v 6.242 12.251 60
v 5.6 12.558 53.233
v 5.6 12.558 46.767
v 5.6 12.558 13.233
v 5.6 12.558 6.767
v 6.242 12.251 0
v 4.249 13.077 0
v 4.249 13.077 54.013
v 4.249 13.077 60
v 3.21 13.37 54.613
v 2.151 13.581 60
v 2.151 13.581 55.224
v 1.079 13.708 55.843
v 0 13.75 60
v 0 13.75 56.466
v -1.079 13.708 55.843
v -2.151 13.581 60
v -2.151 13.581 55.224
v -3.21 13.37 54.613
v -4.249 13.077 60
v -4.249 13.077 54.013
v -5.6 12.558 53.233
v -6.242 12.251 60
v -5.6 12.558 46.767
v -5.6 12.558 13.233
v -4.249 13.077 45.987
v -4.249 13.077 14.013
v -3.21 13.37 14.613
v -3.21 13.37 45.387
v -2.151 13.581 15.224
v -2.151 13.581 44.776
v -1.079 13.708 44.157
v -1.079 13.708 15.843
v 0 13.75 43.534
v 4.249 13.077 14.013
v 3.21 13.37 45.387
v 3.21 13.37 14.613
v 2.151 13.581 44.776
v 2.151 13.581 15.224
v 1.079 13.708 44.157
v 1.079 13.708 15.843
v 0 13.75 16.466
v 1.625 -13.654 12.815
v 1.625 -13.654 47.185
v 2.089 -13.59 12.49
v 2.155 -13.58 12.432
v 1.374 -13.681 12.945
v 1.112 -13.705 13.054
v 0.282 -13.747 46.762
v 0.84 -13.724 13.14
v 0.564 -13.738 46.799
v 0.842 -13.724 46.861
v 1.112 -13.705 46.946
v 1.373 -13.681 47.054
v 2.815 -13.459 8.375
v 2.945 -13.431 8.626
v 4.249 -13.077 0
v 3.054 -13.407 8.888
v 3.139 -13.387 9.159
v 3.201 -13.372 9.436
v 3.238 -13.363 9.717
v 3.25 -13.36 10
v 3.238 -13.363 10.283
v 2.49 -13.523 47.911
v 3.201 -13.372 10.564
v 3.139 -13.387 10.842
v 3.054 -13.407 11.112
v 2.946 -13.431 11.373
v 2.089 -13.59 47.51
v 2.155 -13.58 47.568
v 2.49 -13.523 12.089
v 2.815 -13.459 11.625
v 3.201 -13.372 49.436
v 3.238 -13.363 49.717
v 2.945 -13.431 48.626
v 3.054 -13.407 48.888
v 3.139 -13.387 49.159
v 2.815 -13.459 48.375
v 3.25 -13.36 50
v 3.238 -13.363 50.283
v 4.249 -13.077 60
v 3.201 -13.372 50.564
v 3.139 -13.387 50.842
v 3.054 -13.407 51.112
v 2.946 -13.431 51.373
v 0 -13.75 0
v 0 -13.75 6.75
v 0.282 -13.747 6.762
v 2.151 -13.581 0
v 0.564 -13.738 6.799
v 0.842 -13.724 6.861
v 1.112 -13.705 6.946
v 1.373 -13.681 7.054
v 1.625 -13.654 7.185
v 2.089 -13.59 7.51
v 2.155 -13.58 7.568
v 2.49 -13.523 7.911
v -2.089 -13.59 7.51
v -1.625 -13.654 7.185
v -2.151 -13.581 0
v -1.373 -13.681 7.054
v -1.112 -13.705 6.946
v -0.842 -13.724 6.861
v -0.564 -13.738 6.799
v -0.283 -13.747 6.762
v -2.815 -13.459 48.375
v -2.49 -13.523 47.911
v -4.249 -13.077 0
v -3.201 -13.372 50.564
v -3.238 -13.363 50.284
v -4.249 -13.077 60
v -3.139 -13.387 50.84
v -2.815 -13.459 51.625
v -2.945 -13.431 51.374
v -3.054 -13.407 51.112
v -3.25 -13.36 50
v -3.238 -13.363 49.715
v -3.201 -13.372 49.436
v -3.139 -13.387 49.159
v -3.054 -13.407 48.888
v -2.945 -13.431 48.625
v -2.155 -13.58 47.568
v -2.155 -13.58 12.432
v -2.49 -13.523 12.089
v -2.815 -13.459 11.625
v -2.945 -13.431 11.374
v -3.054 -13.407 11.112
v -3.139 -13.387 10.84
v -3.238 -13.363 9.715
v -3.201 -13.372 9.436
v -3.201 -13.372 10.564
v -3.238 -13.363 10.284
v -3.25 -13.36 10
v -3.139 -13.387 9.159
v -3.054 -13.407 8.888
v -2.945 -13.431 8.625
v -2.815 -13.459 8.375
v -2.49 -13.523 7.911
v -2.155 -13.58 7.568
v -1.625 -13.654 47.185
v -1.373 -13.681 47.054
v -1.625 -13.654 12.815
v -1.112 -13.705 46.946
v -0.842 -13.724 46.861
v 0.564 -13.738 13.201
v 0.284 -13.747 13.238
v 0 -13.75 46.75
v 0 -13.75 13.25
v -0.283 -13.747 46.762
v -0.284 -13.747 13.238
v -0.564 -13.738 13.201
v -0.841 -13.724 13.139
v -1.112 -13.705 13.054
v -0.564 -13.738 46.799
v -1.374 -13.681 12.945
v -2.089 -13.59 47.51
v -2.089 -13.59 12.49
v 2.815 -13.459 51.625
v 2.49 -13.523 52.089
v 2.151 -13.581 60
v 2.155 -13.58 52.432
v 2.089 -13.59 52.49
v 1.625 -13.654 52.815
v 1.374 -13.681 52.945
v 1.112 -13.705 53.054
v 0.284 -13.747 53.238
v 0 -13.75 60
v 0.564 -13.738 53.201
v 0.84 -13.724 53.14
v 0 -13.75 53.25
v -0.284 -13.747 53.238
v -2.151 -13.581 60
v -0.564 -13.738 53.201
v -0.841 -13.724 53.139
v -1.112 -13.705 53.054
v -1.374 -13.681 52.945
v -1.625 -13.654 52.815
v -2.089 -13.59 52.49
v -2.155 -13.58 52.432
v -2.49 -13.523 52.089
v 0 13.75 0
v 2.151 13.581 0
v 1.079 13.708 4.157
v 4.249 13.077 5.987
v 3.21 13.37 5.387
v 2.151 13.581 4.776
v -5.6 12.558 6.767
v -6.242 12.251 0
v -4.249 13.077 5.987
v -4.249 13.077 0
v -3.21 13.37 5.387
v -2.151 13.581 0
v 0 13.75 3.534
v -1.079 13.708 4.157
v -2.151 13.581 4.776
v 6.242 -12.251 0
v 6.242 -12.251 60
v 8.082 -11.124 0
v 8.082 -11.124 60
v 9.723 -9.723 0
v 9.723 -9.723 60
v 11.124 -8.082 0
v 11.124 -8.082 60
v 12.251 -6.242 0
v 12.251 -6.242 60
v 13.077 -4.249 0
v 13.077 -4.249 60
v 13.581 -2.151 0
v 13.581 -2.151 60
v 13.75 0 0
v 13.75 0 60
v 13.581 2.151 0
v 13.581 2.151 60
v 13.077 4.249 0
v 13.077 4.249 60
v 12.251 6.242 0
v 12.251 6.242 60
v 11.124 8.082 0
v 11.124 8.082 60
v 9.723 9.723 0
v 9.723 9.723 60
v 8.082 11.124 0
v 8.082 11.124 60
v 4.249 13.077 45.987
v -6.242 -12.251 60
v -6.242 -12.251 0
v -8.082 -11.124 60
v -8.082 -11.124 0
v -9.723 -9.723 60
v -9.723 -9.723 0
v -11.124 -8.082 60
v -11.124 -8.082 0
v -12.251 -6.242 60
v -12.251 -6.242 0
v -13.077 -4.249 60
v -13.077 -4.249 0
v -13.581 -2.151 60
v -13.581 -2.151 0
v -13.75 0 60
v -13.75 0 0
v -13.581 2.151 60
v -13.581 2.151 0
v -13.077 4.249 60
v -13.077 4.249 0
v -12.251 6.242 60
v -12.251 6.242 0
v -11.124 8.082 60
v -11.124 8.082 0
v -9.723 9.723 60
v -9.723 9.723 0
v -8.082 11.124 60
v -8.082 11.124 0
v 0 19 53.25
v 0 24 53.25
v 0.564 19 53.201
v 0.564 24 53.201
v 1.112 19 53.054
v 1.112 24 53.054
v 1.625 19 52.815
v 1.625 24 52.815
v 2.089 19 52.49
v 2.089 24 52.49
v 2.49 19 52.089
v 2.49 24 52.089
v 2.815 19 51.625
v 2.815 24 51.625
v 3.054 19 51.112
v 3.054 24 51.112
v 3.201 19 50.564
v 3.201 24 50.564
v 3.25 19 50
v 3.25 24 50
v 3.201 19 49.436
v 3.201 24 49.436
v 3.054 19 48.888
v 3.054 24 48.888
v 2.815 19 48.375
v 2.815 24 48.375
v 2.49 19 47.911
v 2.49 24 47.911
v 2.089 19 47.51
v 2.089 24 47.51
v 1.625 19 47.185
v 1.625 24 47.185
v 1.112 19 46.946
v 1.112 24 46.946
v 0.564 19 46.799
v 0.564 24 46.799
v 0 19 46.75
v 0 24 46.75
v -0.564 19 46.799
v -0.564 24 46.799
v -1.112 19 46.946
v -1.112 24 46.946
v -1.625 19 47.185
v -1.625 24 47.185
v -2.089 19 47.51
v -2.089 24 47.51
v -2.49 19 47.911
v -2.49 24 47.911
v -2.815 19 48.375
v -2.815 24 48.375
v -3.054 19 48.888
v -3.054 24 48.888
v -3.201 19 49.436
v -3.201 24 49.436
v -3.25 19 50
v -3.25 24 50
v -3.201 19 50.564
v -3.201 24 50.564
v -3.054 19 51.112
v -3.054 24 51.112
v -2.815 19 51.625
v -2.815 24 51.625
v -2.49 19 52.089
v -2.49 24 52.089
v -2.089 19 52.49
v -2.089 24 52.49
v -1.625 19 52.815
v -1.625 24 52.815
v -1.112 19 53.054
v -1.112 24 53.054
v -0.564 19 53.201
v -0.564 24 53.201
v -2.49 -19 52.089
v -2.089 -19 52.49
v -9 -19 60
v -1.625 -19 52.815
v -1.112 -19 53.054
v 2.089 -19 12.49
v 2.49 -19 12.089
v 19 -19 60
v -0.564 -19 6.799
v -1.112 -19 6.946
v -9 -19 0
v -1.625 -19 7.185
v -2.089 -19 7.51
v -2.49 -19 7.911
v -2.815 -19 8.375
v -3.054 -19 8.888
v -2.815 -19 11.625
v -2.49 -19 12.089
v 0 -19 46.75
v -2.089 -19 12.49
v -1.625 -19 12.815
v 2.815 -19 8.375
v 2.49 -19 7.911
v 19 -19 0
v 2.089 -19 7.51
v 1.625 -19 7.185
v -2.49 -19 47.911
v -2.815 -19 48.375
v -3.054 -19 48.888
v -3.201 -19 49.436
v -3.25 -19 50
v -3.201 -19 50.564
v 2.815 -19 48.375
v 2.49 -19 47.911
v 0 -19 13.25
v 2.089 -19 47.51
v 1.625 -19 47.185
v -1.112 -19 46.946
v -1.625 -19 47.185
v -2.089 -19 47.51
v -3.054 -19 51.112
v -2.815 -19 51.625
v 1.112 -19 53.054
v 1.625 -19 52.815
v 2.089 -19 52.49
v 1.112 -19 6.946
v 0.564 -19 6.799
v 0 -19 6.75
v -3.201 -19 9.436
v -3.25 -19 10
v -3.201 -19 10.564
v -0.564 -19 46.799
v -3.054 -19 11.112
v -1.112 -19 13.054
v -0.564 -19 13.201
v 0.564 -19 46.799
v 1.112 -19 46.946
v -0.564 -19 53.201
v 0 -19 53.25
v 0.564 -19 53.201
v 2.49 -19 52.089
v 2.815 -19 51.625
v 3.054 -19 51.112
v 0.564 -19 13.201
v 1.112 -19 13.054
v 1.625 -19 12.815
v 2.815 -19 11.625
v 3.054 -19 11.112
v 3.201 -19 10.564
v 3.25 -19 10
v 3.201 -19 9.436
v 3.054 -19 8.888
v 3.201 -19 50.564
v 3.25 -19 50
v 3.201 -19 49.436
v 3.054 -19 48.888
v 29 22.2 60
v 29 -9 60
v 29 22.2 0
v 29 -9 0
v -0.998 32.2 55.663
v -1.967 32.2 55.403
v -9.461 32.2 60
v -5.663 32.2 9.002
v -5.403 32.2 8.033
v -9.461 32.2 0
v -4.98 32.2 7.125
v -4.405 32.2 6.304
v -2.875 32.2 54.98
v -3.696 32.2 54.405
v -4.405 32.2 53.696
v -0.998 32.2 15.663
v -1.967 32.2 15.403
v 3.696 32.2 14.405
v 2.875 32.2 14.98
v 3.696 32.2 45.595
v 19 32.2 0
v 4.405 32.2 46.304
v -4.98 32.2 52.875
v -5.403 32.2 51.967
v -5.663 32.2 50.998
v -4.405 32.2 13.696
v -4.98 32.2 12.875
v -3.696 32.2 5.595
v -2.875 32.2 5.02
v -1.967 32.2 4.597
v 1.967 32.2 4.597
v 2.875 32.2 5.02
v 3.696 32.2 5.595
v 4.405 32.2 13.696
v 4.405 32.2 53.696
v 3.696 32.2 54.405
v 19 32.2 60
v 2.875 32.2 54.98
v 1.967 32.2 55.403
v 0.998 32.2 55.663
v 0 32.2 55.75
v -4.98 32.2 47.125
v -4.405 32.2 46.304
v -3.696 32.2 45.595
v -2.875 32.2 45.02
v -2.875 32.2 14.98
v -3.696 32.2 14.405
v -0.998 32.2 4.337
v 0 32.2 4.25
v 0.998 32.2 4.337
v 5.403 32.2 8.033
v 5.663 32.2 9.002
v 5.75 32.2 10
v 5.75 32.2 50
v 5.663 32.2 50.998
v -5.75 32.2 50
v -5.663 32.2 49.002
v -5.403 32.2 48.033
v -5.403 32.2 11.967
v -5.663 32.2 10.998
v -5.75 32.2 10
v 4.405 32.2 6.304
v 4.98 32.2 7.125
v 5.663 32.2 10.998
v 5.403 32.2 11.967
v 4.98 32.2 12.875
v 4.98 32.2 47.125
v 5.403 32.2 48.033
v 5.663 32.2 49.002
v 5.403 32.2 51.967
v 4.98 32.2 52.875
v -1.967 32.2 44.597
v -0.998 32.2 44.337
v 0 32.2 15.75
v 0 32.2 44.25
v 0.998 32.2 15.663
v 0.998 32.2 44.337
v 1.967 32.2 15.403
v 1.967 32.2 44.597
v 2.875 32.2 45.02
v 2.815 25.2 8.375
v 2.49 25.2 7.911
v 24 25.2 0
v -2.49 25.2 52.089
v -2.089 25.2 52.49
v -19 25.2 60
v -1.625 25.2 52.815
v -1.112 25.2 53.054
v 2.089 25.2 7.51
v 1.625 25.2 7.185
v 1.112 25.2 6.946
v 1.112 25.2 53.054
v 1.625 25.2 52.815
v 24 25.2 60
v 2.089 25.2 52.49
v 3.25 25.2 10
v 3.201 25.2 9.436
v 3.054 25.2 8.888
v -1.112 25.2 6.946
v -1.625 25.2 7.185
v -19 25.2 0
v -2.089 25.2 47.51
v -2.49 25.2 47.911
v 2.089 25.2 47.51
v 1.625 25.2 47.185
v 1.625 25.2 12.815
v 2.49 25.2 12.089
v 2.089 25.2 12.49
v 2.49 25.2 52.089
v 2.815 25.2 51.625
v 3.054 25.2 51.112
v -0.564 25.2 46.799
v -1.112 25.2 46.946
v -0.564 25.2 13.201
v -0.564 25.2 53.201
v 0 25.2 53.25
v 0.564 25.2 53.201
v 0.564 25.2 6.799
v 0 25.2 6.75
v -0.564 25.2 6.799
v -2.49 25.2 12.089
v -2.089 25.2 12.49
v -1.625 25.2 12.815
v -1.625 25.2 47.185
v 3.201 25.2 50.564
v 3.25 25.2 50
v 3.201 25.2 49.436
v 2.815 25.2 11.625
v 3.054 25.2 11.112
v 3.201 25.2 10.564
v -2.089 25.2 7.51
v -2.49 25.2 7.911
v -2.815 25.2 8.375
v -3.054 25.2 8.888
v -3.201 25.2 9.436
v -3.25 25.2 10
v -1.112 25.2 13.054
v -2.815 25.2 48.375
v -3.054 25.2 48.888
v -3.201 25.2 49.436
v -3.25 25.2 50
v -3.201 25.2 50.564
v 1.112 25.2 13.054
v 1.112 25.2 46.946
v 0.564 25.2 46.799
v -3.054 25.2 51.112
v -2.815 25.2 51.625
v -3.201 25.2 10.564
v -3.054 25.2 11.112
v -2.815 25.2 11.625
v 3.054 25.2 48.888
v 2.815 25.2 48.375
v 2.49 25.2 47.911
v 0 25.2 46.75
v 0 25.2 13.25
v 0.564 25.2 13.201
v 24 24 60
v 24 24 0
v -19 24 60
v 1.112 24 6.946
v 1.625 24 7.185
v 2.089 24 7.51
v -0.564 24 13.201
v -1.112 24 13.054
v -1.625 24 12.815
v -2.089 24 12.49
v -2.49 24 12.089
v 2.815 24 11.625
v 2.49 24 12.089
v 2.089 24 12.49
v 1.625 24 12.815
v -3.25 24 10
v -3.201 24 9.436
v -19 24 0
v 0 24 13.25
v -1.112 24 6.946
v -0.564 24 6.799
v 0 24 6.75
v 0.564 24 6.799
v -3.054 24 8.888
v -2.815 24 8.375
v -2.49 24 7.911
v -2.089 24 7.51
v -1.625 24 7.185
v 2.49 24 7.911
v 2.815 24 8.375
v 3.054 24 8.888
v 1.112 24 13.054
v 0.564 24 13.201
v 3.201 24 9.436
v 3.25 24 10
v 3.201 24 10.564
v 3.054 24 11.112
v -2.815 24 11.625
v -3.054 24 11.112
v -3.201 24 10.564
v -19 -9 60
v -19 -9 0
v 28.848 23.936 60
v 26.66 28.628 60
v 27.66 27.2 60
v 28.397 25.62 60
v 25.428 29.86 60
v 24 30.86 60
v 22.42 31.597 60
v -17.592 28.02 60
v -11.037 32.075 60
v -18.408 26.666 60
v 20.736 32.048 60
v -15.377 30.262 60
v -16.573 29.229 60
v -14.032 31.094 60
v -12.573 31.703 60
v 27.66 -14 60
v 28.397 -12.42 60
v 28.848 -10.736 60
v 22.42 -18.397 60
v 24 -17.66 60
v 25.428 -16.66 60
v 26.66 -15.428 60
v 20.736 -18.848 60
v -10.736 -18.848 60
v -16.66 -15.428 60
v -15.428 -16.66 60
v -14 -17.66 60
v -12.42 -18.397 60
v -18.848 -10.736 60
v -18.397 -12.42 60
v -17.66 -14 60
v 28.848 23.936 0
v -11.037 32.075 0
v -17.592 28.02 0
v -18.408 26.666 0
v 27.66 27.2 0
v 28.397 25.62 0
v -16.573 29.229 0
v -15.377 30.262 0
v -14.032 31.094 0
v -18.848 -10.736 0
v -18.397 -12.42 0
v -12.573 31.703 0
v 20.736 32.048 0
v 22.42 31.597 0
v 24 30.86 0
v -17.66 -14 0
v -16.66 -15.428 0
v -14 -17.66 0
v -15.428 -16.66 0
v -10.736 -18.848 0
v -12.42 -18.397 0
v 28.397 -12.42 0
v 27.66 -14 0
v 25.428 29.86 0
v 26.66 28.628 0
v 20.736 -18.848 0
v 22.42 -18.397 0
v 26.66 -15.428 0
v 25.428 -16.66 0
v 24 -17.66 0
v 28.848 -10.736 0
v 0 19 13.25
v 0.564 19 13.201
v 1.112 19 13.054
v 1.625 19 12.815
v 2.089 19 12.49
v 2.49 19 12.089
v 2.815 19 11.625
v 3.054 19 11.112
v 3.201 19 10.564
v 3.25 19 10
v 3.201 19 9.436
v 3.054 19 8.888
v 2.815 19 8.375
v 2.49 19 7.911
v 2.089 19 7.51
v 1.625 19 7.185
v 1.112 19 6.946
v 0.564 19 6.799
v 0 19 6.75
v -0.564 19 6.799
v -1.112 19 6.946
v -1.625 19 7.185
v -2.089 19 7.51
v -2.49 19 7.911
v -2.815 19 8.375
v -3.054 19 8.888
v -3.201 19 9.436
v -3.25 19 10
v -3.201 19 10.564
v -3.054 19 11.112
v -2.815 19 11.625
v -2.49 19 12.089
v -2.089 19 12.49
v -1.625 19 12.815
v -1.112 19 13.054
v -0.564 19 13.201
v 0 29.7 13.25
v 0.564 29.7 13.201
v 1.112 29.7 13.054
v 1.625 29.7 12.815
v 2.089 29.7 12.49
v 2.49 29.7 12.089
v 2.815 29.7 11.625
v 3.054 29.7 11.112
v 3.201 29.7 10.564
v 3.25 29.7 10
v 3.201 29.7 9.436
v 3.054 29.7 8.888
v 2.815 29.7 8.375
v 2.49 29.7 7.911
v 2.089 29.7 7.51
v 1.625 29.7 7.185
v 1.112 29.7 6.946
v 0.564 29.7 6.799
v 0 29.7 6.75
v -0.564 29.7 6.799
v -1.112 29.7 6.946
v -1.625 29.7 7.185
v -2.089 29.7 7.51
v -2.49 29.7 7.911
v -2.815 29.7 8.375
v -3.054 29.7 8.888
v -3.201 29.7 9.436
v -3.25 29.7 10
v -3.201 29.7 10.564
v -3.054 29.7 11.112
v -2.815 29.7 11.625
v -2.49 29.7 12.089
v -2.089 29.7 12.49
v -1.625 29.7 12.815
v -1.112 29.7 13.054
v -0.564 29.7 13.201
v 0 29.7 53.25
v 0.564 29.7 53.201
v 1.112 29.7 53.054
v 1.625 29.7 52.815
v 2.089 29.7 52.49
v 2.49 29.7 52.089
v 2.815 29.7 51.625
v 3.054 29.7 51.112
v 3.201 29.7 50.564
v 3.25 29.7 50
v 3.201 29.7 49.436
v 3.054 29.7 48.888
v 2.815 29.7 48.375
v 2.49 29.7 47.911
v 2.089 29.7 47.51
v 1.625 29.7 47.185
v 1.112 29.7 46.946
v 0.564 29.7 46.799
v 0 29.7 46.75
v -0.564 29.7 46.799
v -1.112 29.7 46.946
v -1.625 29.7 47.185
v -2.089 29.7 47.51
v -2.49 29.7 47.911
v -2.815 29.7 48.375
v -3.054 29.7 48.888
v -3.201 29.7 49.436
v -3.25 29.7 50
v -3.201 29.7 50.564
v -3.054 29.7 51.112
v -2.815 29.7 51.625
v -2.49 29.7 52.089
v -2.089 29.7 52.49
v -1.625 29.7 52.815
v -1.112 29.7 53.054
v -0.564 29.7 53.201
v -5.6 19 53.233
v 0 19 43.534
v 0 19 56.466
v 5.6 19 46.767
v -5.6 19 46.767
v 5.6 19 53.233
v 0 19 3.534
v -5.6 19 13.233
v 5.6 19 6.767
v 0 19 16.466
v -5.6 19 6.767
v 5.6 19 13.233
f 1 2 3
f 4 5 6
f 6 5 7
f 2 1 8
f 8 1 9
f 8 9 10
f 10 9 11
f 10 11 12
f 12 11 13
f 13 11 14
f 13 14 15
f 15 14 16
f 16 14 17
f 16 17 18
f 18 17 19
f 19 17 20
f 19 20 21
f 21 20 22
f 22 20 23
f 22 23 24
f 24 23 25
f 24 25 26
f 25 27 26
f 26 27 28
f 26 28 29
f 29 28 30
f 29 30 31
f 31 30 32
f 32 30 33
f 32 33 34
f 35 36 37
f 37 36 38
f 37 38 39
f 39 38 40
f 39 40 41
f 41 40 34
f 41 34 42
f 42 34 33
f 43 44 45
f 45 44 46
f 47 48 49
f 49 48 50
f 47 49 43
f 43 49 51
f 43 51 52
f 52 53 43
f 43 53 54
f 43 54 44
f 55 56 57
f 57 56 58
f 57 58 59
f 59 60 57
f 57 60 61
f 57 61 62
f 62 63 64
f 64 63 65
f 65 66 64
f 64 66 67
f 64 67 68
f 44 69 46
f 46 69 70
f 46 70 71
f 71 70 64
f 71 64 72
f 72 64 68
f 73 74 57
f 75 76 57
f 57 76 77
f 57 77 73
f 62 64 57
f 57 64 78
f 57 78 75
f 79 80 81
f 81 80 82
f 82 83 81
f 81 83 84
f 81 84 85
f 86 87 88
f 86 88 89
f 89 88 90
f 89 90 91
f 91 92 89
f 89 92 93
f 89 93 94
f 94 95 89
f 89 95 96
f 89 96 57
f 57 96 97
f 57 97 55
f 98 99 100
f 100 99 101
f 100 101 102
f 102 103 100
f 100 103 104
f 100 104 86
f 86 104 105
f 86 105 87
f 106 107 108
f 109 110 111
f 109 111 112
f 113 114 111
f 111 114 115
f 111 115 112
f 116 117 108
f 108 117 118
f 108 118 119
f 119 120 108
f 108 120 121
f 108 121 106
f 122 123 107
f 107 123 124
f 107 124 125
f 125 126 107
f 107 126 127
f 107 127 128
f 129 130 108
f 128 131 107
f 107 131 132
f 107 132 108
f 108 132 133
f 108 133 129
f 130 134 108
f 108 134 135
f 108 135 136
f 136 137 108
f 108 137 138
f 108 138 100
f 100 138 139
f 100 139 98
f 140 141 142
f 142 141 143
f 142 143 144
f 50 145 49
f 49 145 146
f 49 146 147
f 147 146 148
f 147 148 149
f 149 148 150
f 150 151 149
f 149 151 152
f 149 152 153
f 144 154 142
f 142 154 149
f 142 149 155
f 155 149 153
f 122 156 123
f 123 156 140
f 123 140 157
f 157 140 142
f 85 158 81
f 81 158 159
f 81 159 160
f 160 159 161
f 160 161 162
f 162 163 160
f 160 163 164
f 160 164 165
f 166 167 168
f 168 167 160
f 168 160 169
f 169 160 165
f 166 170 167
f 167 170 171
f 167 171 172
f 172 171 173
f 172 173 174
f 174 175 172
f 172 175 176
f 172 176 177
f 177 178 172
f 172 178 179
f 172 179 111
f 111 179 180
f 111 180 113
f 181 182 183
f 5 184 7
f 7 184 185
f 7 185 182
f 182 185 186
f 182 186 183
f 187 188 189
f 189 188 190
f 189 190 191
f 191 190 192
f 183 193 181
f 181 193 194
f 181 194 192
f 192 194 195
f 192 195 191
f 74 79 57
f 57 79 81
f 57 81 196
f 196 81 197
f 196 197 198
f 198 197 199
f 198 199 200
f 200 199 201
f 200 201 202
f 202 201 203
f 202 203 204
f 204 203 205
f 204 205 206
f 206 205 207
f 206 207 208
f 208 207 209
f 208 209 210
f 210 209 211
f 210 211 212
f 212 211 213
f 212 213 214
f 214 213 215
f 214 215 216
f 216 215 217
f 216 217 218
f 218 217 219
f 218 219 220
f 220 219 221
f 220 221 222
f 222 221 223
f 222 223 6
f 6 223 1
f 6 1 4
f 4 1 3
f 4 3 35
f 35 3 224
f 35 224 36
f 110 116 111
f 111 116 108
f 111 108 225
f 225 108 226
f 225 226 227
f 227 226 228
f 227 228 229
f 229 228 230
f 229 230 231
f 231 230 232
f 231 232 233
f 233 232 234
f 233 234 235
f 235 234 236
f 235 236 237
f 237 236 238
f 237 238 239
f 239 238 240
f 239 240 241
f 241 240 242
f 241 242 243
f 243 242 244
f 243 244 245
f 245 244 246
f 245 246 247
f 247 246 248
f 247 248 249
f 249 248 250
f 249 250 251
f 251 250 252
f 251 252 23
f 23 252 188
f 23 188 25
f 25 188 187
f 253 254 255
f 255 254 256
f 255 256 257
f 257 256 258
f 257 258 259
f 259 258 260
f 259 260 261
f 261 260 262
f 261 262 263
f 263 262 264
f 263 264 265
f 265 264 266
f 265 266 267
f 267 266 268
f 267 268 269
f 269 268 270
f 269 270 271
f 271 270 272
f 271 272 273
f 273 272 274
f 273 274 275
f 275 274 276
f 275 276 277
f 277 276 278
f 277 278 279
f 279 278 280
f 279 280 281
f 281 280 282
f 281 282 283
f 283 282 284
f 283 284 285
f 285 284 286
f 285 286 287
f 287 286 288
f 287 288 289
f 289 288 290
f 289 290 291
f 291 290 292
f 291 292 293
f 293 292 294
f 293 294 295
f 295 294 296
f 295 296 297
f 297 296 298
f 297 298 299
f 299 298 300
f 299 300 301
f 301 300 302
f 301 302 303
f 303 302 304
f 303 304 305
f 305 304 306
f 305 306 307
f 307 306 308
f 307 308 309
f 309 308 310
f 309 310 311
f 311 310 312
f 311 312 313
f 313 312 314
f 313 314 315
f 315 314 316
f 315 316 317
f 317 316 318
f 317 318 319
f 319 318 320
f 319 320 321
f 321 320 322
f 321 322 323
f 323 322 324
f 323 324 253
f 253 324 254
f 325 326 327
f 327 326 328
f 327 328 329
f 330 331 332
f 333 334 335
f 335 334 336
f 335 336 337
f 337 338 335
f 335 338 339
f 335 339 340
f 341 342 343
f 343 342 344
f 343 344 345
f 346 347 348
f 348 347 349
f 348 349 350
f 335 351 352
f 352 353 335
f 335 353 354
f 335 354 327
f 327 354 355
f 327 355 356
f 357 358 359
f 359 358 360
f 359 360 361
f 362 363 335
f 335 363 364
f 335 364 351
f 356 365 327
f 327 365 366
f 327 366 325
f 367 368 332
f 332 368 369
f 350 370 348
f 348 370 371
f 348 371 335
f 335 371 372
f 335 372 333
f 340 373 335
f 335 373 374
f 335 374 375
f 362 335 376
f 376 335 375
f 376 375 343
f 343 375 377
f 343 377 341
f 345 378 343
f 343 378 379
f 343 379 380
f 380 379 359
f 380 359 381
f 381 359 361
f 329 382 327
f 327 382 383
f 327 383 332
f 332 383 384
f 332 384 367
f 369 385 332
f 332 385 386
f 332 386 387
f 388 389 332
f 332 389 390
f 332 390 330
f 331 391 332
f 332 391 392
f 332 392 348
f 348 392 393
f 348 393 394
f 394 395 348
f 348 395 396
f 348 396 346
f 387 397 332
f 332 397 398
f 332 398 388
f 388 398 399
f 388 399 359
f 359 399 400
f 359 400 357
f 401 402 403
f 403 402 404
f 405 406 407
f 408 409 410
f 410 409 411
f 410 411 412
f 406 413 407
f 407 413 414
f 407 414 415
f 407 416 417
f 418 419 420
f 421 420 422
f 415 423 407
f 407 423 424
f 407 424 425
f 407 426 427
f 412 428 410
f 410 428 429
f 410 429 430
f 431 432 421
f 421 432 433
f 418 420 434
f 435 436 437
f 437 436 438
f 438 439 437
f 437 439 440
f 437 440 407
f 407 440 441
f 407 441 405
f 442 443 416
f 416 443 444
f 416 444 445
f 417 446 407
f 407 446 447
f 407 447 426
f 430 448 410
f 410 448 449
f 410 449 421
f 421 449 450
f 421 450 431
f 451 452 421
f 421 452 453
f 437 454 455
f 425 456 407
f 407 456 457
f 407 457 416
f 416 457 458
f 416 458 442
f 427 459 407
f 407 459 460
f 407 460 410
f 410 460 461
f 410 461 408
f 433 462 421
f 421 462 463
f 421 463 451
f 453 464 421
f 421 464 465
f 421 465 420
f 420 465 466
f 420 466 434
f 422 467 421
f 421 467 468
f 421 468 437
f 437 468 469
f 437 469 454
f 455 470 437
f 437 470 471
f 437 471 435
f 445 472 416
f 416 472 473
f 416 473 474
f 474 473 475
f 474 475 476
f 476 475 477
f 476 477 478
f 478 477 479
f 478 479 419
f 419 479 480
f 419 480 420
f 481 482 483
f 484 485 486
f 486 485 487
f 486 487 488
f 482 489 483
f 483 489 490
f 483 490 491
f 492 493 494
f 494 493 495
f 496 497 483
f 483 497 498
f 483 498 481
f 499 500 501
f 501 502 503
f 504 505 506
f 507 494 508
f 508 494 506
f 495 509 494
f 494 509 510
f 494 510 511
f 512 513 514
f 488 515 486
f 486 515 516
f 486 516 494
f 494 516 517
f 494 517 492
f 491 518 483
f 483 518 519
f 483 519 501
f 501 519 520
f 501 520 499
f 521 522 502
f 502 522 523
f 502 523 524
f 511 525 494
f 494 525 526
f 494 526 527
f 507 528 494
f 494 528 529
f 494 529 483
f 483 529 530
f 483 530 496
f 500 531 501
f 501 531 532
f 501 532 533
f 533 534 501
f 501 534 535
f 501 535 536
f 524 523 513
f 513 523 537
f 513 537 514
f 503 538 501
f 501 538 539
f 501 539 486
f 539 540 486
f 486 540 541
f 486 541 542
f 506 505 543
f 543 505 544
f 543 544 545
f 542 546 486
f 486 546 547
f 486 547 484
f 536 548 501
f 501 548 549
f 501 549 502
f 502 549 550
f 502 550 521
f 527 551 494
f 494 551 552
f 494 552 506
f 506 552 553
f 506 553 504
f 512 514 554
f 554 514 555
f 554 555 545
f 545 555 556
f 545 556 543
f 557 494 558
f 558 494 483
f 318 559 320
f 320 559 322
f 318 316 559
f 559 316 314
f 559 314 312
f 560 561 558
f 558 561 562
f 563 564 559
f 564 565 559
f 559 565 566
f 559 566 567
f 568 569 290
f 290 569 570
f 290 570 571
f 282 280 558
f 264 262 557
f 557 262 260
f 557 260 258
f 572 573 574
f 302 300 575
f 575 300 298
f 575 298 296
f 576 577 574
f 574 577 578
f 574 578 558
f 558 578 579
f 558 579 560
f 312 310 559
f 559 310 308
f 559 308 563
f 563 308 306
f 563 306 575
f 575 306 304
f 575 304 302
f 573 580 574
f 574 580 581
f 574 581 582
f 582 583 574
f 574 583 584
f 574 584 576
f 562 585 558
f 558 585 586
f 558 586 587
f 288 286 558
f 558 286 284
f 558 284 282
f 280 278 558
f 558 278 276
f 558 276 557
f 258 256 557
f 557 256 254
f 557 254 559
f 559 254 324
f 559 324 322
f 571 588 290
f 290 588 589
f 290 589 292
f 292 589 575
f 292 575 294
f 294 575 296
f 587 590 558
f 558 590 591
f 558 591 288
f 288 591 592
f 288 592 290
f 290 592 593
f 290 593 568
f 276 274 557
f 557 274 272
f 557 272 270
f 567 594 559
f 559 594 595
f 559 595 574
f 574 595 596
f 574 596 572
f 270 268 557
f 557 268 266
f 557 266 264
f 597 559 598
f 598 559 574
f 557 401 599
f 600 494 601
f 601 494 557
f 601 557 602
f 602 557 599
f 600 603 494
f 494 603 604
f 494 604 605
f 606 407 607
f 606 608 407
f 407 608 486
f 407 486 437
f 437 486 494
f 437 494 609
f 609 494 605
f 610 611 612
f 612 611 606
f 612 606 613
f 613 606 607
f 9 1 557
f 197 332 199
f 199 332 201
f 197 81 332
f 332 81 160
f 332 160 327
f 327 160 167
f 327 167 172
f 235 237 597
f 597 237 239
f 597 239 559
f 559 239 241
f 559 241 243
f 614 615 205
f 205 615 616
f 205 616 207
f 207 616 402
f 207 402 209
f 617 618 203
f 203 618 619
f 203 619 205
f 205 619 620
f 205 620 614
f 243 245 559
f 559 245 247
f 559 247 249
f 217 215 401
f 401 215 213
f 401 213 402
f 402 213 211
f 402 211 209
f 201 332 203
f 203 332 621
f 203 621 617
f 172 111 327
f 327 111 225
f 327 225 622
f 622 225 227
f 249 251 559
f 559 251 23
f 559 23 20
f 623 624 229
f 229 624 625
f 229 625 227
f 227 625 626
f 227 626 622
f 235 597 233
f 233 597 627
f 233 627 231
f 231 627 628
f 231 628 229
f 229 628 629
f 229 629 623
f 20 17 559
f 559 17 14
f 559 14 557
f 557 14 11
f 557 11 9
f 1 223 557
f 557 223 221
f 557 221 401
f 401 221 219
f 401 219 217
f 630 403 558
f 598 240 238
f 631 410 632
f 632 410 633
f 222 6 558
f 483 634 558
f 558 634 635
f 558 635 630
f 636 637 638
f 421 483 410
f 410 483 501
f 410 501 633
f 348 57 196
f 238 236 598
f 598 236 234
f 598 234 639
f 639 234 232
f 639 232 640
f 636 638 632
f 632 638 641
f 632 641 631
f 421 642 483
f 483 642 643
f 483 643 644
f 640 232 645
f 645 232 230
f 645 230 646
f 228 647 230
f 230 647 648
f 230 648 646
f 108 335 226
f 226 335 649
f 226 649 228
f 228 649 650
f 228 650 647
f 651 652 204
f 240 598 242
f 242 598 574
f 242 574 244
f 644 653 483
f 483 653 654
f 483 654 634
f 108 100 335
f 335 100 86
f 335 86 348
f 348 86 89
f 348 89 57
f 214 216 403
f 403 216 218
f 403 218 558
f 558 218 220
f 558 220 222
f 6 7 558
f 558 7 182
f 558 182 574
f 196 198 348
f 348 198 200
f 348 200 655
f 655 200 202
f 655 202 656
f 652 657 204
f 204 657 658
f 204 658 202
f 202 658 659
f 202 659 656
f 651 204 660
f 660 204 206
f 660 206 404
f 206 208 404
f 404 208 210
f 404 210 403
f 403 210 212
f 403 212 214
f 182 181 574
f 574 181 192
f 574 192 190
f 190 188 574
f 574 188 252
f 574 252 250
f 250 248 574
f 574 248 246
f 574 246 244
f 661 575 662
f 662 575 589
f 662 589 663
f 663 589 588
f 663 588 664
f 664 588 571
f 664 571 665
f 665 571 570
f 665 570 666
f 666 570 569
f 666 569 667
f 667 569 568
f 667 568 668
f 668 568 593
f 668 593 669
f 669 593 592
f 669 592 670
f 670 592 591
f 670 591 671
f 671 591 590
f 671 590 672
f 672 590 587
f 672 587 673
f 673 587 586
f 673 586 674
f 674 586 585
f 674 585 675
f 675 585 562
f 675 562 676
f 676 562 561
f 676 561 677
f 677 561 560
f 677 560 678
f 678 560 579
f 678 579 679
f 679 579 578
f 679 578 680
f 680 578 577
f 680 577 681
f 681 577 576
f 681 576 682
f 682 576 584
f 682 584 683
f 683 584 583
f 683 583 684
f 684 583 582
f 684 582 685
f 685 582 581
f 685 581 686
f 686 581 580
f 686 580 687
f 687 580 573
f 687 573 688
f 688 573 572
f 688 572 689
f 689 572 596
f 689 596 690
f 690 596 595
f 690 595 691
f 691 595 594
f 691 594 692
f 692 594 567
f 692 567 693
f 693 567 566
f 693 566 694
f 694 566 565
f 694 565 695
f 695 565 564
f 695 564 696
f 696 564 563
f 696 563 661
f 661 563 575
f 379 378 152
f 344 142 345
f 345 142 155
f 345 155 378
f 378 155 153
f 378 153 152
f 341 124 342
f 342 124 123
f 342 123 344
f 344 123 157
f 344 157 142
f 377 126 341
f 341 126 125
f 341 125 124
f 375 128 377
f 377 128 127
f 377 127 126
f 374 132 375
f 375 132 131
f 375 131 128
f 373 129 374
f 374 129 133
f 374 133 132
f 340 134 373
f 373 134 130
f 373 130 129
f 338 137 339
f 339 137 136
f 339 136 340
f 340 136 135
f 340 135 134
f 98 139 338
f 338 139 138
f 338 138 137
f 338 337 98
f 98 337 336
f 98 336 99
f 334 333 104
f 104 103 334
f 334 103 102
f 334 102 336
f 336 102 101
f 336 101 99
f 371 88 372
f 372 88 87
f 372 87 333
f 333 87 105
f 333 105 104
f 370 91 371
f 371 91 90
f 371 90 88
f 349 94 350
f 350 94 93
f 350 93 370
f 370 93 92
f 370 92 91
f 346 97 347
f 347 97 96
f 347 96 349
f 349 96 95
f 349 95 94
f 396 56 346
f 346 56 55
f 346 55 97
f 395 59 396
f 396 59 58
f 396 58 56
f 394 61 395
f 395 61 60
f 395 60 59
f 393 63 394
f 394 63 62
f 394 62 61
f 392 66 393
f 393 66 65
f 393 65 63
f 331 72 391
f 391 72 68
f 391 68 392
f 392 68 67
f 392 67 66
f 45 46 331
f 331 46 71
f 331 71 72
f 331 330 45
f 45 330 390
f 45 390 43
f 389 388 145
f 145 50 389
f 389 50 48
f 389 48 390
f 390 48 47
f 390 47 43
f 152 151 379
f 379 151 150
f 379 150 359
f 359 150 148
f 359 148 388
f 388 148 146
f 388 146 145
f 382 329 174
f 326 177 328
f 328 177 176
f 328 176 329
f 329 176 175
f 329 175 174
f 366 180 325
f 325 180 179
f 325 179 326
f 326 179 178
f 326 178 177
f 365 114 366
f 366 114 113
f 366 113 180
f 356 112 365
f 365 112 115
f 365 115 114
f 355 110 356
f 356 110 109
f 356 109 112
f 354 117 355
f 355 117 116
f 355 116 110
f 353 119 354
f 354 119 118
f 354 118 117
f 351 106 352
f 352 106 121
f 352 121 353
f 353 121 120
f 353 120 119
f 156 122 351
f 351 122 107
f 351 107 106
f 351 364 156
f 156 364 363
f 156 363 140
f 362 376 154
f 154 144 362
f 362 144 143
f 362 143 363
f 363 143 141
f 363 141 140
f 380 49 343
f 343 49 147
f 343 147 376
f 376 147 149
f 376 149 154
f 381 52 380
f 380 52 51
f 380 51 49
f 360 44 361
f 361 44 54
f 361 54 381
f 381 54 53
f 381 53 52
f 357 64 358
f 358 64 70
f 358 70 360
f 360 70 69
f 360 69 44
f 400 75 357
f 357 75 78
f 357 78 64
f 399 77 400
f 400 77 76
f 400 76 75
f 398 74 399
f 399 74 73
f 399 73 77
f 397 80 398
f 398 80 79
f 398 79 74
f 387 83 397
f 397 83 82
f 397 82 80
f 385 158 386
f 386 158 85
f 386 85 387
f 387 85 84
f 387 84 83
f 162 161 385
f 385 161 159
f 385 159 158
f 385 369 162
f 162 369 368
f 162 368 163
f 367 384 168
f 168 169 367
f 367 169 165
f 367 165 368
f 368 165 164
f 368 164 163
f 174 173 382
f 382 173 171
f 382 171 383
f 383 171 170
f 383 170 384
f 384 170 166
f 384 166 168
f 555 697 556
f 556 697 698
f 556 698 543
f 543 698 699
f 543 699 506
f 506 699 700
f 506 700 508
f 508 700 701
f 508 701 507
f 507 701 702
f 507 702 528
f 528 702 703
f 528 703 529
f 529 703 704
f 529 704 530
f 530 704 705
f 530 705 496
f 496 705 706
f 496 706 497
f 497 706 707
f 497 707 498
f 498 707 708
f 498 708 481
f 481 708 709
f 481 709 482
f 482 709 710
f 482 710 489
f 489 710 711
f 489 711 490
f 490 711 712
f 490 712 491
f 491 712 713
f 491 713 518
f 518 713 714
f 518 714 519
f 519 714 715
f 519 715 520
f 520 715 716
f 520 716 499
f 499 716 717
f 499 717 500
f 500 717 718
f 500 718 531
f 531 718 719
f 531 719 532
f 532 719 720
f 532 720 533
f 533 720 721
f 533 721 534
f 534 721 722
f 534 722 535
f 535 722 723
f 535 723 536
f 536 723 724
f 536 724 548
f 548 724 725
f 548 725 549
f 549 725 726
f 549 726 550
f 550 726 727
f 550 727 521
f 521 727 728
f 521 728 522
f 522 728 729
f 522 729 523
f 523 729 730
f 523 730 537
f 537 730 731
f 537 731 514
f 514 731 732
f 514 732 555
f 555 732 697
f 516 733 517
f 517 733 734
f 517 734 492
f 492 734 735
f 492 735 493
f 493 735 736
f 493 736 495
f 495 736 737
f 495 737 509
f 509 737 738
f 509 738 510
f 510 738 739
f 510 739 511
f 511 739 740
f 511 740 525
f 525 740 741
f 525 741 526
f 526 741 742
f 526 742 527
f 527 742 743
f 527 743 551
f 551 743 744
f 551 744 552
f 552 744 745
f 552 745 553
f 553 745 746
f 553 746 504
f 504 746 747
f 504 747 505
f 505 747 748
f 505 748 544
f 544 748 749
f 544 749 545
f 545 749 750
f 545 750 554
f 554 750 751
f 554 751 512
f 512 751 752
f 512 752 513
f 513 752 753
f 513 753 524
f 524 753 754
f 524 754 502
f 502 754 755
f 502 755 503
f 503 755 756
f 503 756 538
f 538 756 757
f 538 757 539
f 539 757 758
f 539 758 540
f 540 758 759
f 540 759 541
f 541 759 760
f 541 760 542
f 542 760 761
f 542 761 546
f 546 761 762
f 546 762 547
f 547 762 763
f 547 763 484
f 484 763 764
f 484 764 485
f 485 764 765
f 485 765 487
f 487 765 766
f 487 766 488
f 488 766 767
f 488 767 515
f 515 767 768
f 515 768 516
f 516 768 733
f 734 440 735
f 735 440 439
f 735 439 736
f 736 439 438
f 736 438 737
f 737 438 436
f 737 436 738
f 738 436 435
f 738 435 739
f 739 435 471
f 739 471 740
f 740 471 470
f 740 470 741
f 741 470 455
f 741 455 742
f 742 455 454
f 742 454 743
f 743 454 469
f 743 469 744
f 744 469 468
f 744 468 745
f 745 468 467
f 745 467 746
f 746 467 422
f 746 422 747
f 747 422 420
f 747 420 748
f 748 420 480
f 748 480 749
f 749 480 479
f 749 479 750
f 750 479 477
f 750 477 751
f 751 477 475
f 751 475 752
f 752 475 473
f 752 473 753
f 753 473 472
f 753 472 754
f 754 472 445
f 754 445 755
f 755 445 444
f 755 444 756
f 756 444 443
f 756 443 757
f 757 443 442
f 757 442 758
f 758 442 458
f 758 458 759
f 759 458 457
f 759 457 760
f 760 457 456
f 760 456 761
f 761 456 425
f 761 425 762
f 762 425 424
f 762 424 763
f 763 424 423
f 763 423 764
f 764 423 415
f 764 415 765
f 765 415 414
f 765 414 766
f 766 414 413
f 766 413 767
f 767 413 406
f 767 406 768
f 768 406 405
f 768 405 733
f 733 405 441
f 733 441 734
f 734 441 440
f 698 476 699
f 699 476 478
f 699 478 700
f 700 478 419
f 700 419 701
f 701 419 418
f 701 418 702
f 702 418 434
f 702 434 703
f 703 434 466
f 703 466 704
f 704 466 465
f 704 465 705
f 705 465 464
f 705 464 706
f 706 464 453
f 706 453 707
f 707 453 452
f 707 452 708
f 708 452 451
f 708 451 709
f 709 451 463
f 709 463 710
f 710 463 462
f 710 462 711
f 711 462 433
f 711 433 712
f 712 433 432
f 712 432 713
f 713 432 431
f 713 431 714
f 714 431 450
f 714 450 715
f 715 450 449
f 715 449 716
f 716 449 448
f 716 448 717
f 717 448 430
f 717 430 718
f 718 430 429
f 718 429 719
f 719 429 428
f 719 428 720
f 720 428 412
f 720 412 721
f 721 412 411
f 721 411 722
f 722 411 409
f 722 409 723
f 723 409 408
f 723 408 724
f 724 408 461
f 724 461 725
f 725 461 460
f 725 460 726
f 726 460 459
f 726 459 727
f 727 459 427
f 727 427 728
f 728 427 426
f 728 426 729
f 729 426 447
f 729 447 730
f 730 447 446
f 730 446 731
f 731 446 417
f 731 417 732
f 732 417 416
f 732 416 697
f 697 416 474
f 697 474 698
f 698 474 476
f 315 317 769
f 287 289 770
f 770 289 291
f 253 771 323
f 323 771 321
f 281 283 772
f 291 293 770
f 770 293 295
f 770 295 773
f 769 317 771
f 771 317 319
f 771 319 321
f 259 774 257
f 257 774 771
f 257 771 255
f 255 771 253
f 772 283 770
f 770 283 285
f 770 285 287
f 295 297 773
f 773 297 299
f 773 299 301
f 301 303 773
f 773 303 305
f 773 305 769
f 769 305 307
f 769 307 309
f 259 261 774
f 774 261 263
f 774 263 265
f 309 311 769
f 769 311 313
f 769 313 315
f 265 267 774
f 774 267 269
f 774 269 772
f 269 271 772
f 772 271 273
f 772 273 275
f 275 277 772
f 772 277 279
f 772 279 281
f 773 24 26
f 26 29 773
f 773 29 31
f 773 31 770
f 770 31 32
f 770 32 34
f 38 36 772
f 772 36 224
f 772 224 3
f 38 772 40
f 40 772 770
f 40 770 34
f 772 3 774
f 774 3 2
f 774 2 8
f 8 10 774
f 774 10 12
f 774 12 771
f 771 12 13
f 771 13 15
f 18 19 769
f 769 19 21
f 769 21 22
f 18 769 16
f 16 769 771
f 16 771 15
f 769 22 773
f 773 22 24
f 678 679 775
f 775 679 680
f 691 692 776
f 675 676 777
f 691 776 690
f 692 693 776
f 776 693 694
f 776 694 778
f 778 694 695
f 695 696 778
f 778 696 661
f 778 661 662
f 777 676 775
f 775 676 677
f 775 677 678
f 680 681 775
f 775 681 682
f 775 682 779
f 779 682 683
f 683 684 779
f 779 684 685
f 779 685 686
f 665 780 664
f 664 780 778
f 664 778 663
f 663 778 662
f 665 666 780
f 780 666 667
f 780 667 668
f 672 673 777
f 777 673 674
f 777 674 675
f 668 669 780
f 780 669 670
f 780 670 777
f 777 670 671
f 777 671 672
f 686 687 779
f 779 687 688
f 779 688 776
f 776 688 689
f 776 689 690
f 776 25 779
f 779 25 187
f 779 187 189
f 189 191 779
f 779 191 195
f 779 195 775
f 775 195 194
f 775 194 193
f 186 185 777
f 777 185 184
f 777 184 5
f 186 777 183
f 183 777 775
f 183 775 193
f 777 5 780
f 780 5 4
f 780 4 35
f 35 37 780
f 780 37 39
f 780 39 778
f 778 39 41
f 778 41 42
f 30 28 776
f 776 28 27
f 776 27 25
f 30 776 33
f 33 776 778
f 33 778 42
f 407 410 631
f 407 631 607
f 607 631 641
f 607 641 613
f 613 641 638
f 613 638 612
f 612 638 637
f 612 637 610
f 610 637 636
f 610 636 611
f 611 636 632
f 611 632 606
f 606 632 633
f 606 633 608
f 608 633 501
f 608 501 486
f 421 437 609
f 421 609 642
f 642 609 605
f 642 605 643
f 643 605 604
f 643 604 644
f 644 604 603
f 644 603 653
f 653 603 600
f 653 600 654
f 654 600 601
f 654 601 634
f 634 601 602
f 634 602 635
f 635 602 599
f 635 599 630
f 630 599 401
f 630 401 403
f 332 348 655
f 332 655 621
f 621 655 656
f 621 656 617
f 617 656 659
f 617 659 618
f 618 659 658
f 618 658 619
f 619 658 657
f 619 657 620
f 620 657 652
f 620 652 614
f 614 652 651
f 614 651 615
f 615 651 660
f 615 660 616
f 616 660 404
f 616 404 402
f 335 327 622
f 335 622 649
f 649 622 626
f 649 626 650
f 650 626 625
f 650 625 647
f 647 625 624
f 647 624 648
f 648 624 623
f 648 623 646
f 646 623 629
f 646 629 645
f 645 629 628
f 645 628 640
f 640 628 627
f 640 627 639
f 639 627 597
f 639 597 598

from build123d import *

# Parameters (mm, degrees)
SKETCH1_W           = 43
SKETCH1_H           = 43
SKETCH1_R           = 13.75
SKETCH1_H_2         = 7
BOSS_EXTRUDE1_DEPTH = 60
SKETCH3_R           = 3.25
CUT_EXTRUDE5_DEPTH  = 85.038324591
CHAMFER2_SIZE       = 2.5
CUT_EXTRUDE6_START  = -38
CUT_EXTRUDE6_DEPTH  = 15
FILLET1_R           = 10


with BuildPart() as part:
    # Sketch1 → Boss-Extrude1 (new body)
    # profile 1 of 3: a face of its own
    with BuildSketch(Plane.XY):
        with Locations((2.5, 2.5)):
            Rectangle(SKETCH1_W, SKETCH1_H)
        Circle(SKETCH1_R, mode=Mode.SUBTRACT)
    # profile 2 of 3: a face of its own
    with BuildSketch(Plane.XY):
        with Locations((2.5, 28.7)):
            Rectangle(SKETCH1_W, SKETCH1_H_2)
    # profile 3 of 3: a face of its own
    with BuildSketch(Plane.XY):
        Polygon((24, 24), (24, -19), (29, -19), (29, 32.2), (24, 32.2), (24, 25.2), align=None)
    extrude(amount=BOSS_EXTRUDE1_DEPTH)

    # Sketch3 → Cut-Extrude5 (cut, through all)
    with BuildSketch(Plane(origin=(0, 32.2, 0), x_dir=(1, 0, 0), z_dir=(0, 1, 0))):
        with Locations(Location((0, -50, 0), (0, 0, 270))):
            Circle(SKETCH3_R)
        with Locations(Location((0, -10, 0), (0, 0, 270))):
            Circle(SKETCH3_R)
    extrude(amount=-CUT_EXTRUDE5_DEPTH, mode=Mode.SUBTRACT)

    # Chamfer2
    chamfer2_edges = [part.edges().sort_by_distance(p)[0] for p in [
        (0, 32.2, 46.75),
        (0, 32.2, 6.75),
    ]]
    chamfer(chamfer2_edges, length=CHAMFER2_SIZE)

    # Sketch7 → Cut-Extrude6 (cut)
    with BuildSketch(Plane.XZ.offset(19).offset(CUT_EXTRUDE6_START)):
        Polygon((0, 43.533676985), (5.6, 46.766838493), (5.6, 53.233161507), (0, 56.466323015), (-5.6, 53.233161507), (-5.6, 46.766838493), align=None)
        Polygon((-5.6, 13.233161507), (0, 16.466323015), (5.6, 13.233161507), (5.6, 6.766838493), (0, 3.533676985), (-5.6, 6.766838493), align=None)
    extrude(amount=CUT_EXTRUDE6_DEPTH, mode=Mode.SUBTRACT)

    # Fillet1
    # the kernel refuses this fillet: 10 mm, written as the material it takes off along each edge
    with BuildSketch(Plane(origin=(-19, -19, -25), x_dir=(1, 0, 0), z_dir=(0, 0, 1)), Plane(origin=(29, 32.2, -25), x_dir=(-1, 0, 0), z_dir=(0, 0, 1)), Plane(origin=(29, -19, -25), x_dir=(0, 1, 0), z_dir=(0, 0, 1))) as fillet1_piece_1:
        with BuildLine():
            CenterArc((FILLET1_R, FILLET1_R), FILLET1_R, 180, 90)
            Line((0, FILLET1_R), (-FILLET1_R * 0.02, FILLET1_R))
            Line((-FILLET1_R * 0.02, FILLET1_R), (-FILLET1_R * 0.02, -FILLET1_R * 0.02))
            Line((-FILLET1_R * 0.02, -FILLET1_R * 0.02), (FILLET1_R, -FILLET1_R * 0.02))
            Line((FILLET1_R, -FILLET1_R * 0.02), (FILLET1_R, 0))
        make_face()
    extrude(amount=110, mode=Mode.SUBTRACT)
    with BuildSketch(Plane(origin=(-19, 32.2, -23.848480035), x_dir=(1, 0, 0), z_dir=(0, 0, 1))) as fillet1_piece_2:
        with BuildLine():
            CenterArc((9.539392014, -10), FILLET1_R, 90, 72.542396876)
            Line((0, -7), (-0.19078784, -6.94))
            ThreePointArc((-0.19078784, -6.94), (-0.2, -3.5), (-0.2, 0))
            Line((-0.2, 0), (0, 0.2))
            Line((0, 0.2), (9.539392014, 0.2))
            Line((9.539392014, 0.2), (9.539392014, 0))
        make_face()
    extrude(amount=107.696960071, mode=Mode.SUBTRACT)


solid = part.part
